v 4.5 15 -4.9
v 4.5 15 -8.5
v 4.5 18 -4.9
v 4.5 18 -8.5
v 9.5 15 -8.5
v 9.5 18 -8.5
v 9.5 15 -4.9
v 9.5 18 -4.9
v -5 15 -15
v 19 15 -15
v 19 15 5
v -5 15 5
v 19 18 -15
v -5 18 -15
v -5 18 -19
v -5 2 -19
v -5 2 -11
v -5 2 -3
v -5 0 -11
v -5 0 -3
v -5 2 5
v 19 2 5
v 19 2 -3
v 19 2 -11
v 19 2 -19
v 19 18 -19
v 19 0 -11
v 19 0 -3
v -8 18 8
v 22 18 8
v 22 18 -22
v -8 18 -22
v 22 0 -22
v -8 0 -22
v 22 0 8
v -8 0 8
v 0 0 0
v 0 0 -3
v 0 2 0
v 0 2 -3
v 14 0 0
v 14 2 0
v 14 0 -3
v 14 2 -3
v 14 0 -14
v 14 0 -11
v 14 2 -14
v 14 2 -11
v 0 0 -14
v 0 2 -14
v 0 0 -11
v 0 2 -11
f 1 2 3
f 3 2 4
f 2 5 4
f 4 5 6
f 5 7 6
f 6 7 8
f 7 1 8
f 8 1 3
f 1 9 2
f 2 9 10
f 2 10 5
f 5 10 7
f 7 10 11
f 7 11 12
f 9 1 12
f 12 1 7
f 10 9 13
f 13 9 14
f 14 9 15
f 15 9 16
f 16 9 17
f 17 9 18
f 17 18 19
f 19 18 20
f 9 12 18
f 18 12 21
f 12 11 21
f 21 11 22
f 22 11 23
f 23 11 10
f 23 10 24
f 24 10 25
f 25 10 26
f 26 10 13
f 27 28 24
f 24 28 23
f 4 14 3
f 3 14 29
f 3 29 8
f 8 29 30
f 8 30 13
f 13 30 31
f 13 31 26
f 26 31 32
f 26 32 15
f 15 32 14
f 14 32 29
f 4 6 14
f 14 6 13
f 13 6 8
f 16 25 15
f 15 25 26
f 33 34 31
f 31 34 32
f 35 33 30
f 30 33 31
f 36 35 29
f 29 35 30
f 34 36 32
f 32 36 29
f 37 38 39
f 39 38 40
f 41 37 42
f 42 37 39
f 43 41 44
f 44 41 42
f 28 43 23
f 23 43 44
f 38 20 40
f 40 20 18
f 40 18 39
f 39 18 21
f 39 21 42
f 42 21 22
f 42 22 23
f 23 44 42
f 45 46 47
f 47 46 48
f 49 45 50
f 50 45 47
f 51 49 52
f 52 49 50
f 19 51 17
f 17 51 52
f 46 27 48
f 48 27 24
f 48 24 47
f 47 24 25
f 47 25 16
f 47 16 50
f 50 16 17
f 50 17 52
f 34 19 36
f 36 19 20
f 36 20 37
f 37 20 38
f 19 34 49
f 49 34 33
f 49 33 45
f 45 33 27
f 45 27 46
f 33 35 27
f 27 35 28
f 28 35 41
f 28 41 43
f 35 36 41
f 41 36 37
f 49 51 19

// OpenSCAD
module object1(scale) {polyhedron(
 points=[[4.5,15,-4.900000095367432],[4.5,15,-8.5],[4.5,18,-4.900000095367432],
[4.5,18,-4.900000095367432],[4.5,15,-8.5],[4.5,18,-8.5],
[4.5,15,-8.5],[9.5,15,-8.5],[4.5,18,-8.5],
[4.5,18,-8.5],[9.5,15,-8.5],[9.5,18,-8.5],
[9.5,15,-8.5],[9.5,15,-4.900000095367432],[9.5,18,-8.5],
[9.5,18,-8.5],[9.5,15,-4.900000095367432],[9.5,18,-4.900000095367432],
[9.5,15,-4.900000095367432],[4.5,15,-4.900000095367432],[9.5,18,-4.900000095367432],
[9.5,18,-4.900000095367432],[4.5,15,-4.900000095367432],[4.5,18,-4.900000095367432],
[4.5,15,-4.900000095367432],[-5,15,-15],[4.5,15,-8.5],
[4.5,15,-8.5],[-5,15,-15],[19,15,-15],
[4.5,15,-8.5],[19,15,-15],[9.5,15,-8.5],
[9.5,15,-8.5],[19,15,-15],[9.5,15,-4.900000095367432],
[9.5,15,-4.900000095367432],[19,15,-15],[19,15,5],
[9.5,15,-4.900000095367432],[19,15,5],[-5,15,5],
[-5,15,-15],[4.5,15,-4.900000095367432],[-5,15,5],
[-5,15,5],[4.5,15,-4.900000095367432],[9.5,15,-4.900000095367432],
[19,15,-15],[-5,15,-15],[19,18,-15],
[19,18,-15],[-5,15,-15],[-5,18,-15],
[-5,18,-15],[-5,15,-15],[-5,18,-19],
[-5,18,-19],[-5,15,-15],[-5,2,-19],
[-5,2,-19],[-5,15,-15],[-5,2,-11],
[-5,2,-11],[-5,15,-15],[-5,2,-3],
[-5,2,-11],[-5,2,-3],[-5,0,-11],
[-5,0,-11],[-5,2,-3],[-5,0,-3],
[-5,15,-15],[-5,15,5],[-5,2,-3],
[-5,2,-3],[-5,15,5],[-5,2,5],
[-5,15,5],[19,15,5],[-5,2,5],
[-5,2,5],[19,15,5],[19,2,5],
[19,2,5],[19,15,5],[19,2,-3],
[19,2,-3],[19,15,5],[19,15,-15],
[19,2,-3],[19,15,-15],[19,2,-11],
[19,2,-11],[19,15,-15],[19,2,-19],
[19,2,-19],[19,15,-15],[19,18,-19],
[19,18,-19],[19,15,-15],[19,18,-15],
[19,0,-11],[19,0,-3],[19,2,-11],
[19,2,-11],[19,0,-3],[19,2,-3],
[4.5,18,-8.5],[-5,18,-15],[4.5,18,-4.900000095367432],
[4.5,18,-4.900000095367432],[-5,18,-15],[-8,18,8],
[4.5,18,-4.900000095367432],[-8,18,8],[9.5,18,-4.900000095367432],
[9.5,18,-4.900000095367432],[-8,18,8],[22,18,8],
[9.5,18,-4.900000095367432],[22,18,8],[19,18,-15],
[19,18,-15],[22,18,8],[22,18,-22],
[19,18,-15],[22,18,-22],[19,18,-19],
[19,18,-19],[22,18,-22],[-8,18,-22],
[19,18,-19],[-8,18,-22],[-5,18,-19],
[-5,18,-19],[-8,18,-22],[-5,18,-15],
[-5,18,-15],[-8,18,-22],[-8,18,8],
[4.5,18,-8.5],[9.5,18,-8.5],[-5,18,-15],
[-5,18,-15],[9.5,18,-8.5],[19,18,-15],
[19,18,-15],[9.5,18,-8.5],[9.5,18,-4.900000095367432],
[-5,2,-19],[19,2,-19],[-5,18,-19],
[-5,18,-19],[19,2,-19],[19,18,-19],
[22,0,-22],[-8,0,-22],[22,18,-22],
[22,18,-22],[-8,0,-22],[-8,18,-22],
[22,0,8],[22,0,-22],[22,18,8],
[22,18,8],[22,0,-22],[22,18,-22],
[-8,0,8],[22,0,8],[-8,18,8],
[-8,18,8],[22,0,8],[22,18,8],
[-8,0,-22],[-8,0,8],[-8,18,-22],
[-8,18,-22],[-8,0,8],[-8,18,8],
[0,0,0],[0,0,-3],[0,2,0],
[0,2,0],[0,0,-3],[0,2,-3],
[14,0,0],[0,0,0],[14,2,0],
[14,2,0],[0,0,0],[0,2,0],
[14,0,-3],[14,0,0],[14,2,-3],
[14,2,-3],[14,0,0],[14,2,0],
[19,0,-3],[14,0,-3],[19,2,-3],
[19,2,-3],[14,0,-3],[14,2,-3],
[0,0,-3],[-5,0,-3],[0,2,-3],
[0,2,-3],[-5,0,-3],[-5,2,-3],
[0,2,-3],[-5,2,-3],[0,2,0],
[0,2,0],[-5,2,-3],[-5,2,5],
[0,2,0],[-5,2,5],[14,2,0],
[14,2,0],[-5,2,5],[19,2,5],
[14,2,0],[19,2,5],[19,2,-3],
[19,2,-3],[14,2,-3],[14,2,0],
[14,0,-14],[14,0,-11],[14,2,-14],
[14,2,-14],[14,0,-11],[14,2,-11],
[0,0,-14],[14,0,-14],[0,2,-14],
[0,2,-14],[14,0,-14],[14,2,-14],
[0,0,-11],[0,0,-14],[0,2,-11],
[0,2,-11],[0,0,-14],[0,2,-14],
[-5,0,-11],[0,0,-11],[-5,2,-11],
[-5,2,-11],[0,0,-11],[0,2,-11],
[14,0,-11],[19,0,-11],[14,2,-11],
[14,2,-11],[19,0,-11],[19,2,-11],
[14,2,-11],[19,2,-11],[14,2,-14],
[14,2,-14],[19,2,-11],[19,2,-19],
[14,2,-14],[19,2,-19],[-5,2,-19],
[14,2,-14],[-5,2,-19],[0,2,-14],
[0,2,-14],[-5,2,-19],[-5,2,-11],
[0,2,-14],[-5,2,-11],[0,2,-11],
[-8,0,-22],[-5,0,-11],[-8,0,8],
[-8,0,8],[-5,0,-11],[-5,0,-3],
[-8,0,8],[-5,0,-3],[0,0,0],
[0,0,0],[-5,0,-3],[0,0,-3],
[-5,0,-11],[-8,0,-22],[0,0,-14],
[0,0,-14],[-8,0,-22],[22,0,-22],
[0,0,-14],[22,0,-22],[14,0,-14],
[14,0,-14],[22,0,-22],[19,0,-11],
[14,0,-14],[19,0,-11],[14,0,-11],
[22,0,-22],[22,0,8],[19,0,-11],
[19,0,-11],[22,0,8],[19,0,-3],
[19,0,-3],[22,0,8],[14,0,0],
[19,0,-3],[14,0,0],[14,0,-3],
[22,0,8],[-8,0,8],[14,0,0],
[14,0,0],[-8,0,8],[0,0,0],
[0,0,-14],[0,0,-11],[-5,0,-11] ],
faces=[[0,1,2],[3,4,5],[6,7,8],
[9,10,11],[12,13,14],[15,16,17],
[18,19,20],[21,22,23],[24,25,26],
[27,28,29],[30,31,32],[33,34,35],
[36,37,38],[39,40,41],[42,43,44],
[45,46,47],[48,49,50],[51,52,53],
[54,55,56],[57,58,59],[60,61,62],
[63,64,65],[66,67,68],[69,70,71],
[72,73,74],[75,76,77],[78,79,80],
[81,82,83],[84,85,86],[87,88,89],
[90,91,92],[93,94,95],[96,97,98],
[99,100,101],[102,103,104],[105,106,107],
[108,109,110],[111,112,113],[114,115,116],
[117,118,119],[120,121,122],[123,124,125],
[126,127,128],[129,130,131],[132,133,134],
[135,136,137],[138,139,140],[141,142,143],
[144,145,146],[147,148,149],[150,151,152],
[153,154,155],[156,157,158],[159,160,161],
[162,163,164],[165,166,167],[168,169,170],
[171,172,173],[174,175,176],[177,178,179],
[180,181,182],[183,184,185],[186,187,188],
[189,190,191],[192,193,194],[195,196,197],
[198,199,200],[201,202,203],[204,205,206],
[207,208,209],[210,211,212],[213,214,215],
[216,217,218],[219,220,221],[222,223,224],
[225,226,227],[228,229,230],[231,232,233],
[234,235,236],[237,238,239],[240,241,242],
[243,244,245],[246,247,248],[249,250,251],
[252,253,254],[255,256,257],[258,259,260],
[261,262,263],[264,265,266],[267,268,269],
[270,271,272],[273,274,275],[276,277,278],
[279,280,281],[282,283,284],[285,286,287],
[288,289,290],[291,292,293],[294,295,296],
[297,298,299],[300,301,302],[303,304,305],
[306,307,308],[309,310,311],[312,313,314],
[315,316,317],[318,319,320],[321,322,323]]);}

function object1Min() = [-8.000, 0.000, -22.000];
function object1Max() = [22.000, 18.000, 8.000];

object1(1);
